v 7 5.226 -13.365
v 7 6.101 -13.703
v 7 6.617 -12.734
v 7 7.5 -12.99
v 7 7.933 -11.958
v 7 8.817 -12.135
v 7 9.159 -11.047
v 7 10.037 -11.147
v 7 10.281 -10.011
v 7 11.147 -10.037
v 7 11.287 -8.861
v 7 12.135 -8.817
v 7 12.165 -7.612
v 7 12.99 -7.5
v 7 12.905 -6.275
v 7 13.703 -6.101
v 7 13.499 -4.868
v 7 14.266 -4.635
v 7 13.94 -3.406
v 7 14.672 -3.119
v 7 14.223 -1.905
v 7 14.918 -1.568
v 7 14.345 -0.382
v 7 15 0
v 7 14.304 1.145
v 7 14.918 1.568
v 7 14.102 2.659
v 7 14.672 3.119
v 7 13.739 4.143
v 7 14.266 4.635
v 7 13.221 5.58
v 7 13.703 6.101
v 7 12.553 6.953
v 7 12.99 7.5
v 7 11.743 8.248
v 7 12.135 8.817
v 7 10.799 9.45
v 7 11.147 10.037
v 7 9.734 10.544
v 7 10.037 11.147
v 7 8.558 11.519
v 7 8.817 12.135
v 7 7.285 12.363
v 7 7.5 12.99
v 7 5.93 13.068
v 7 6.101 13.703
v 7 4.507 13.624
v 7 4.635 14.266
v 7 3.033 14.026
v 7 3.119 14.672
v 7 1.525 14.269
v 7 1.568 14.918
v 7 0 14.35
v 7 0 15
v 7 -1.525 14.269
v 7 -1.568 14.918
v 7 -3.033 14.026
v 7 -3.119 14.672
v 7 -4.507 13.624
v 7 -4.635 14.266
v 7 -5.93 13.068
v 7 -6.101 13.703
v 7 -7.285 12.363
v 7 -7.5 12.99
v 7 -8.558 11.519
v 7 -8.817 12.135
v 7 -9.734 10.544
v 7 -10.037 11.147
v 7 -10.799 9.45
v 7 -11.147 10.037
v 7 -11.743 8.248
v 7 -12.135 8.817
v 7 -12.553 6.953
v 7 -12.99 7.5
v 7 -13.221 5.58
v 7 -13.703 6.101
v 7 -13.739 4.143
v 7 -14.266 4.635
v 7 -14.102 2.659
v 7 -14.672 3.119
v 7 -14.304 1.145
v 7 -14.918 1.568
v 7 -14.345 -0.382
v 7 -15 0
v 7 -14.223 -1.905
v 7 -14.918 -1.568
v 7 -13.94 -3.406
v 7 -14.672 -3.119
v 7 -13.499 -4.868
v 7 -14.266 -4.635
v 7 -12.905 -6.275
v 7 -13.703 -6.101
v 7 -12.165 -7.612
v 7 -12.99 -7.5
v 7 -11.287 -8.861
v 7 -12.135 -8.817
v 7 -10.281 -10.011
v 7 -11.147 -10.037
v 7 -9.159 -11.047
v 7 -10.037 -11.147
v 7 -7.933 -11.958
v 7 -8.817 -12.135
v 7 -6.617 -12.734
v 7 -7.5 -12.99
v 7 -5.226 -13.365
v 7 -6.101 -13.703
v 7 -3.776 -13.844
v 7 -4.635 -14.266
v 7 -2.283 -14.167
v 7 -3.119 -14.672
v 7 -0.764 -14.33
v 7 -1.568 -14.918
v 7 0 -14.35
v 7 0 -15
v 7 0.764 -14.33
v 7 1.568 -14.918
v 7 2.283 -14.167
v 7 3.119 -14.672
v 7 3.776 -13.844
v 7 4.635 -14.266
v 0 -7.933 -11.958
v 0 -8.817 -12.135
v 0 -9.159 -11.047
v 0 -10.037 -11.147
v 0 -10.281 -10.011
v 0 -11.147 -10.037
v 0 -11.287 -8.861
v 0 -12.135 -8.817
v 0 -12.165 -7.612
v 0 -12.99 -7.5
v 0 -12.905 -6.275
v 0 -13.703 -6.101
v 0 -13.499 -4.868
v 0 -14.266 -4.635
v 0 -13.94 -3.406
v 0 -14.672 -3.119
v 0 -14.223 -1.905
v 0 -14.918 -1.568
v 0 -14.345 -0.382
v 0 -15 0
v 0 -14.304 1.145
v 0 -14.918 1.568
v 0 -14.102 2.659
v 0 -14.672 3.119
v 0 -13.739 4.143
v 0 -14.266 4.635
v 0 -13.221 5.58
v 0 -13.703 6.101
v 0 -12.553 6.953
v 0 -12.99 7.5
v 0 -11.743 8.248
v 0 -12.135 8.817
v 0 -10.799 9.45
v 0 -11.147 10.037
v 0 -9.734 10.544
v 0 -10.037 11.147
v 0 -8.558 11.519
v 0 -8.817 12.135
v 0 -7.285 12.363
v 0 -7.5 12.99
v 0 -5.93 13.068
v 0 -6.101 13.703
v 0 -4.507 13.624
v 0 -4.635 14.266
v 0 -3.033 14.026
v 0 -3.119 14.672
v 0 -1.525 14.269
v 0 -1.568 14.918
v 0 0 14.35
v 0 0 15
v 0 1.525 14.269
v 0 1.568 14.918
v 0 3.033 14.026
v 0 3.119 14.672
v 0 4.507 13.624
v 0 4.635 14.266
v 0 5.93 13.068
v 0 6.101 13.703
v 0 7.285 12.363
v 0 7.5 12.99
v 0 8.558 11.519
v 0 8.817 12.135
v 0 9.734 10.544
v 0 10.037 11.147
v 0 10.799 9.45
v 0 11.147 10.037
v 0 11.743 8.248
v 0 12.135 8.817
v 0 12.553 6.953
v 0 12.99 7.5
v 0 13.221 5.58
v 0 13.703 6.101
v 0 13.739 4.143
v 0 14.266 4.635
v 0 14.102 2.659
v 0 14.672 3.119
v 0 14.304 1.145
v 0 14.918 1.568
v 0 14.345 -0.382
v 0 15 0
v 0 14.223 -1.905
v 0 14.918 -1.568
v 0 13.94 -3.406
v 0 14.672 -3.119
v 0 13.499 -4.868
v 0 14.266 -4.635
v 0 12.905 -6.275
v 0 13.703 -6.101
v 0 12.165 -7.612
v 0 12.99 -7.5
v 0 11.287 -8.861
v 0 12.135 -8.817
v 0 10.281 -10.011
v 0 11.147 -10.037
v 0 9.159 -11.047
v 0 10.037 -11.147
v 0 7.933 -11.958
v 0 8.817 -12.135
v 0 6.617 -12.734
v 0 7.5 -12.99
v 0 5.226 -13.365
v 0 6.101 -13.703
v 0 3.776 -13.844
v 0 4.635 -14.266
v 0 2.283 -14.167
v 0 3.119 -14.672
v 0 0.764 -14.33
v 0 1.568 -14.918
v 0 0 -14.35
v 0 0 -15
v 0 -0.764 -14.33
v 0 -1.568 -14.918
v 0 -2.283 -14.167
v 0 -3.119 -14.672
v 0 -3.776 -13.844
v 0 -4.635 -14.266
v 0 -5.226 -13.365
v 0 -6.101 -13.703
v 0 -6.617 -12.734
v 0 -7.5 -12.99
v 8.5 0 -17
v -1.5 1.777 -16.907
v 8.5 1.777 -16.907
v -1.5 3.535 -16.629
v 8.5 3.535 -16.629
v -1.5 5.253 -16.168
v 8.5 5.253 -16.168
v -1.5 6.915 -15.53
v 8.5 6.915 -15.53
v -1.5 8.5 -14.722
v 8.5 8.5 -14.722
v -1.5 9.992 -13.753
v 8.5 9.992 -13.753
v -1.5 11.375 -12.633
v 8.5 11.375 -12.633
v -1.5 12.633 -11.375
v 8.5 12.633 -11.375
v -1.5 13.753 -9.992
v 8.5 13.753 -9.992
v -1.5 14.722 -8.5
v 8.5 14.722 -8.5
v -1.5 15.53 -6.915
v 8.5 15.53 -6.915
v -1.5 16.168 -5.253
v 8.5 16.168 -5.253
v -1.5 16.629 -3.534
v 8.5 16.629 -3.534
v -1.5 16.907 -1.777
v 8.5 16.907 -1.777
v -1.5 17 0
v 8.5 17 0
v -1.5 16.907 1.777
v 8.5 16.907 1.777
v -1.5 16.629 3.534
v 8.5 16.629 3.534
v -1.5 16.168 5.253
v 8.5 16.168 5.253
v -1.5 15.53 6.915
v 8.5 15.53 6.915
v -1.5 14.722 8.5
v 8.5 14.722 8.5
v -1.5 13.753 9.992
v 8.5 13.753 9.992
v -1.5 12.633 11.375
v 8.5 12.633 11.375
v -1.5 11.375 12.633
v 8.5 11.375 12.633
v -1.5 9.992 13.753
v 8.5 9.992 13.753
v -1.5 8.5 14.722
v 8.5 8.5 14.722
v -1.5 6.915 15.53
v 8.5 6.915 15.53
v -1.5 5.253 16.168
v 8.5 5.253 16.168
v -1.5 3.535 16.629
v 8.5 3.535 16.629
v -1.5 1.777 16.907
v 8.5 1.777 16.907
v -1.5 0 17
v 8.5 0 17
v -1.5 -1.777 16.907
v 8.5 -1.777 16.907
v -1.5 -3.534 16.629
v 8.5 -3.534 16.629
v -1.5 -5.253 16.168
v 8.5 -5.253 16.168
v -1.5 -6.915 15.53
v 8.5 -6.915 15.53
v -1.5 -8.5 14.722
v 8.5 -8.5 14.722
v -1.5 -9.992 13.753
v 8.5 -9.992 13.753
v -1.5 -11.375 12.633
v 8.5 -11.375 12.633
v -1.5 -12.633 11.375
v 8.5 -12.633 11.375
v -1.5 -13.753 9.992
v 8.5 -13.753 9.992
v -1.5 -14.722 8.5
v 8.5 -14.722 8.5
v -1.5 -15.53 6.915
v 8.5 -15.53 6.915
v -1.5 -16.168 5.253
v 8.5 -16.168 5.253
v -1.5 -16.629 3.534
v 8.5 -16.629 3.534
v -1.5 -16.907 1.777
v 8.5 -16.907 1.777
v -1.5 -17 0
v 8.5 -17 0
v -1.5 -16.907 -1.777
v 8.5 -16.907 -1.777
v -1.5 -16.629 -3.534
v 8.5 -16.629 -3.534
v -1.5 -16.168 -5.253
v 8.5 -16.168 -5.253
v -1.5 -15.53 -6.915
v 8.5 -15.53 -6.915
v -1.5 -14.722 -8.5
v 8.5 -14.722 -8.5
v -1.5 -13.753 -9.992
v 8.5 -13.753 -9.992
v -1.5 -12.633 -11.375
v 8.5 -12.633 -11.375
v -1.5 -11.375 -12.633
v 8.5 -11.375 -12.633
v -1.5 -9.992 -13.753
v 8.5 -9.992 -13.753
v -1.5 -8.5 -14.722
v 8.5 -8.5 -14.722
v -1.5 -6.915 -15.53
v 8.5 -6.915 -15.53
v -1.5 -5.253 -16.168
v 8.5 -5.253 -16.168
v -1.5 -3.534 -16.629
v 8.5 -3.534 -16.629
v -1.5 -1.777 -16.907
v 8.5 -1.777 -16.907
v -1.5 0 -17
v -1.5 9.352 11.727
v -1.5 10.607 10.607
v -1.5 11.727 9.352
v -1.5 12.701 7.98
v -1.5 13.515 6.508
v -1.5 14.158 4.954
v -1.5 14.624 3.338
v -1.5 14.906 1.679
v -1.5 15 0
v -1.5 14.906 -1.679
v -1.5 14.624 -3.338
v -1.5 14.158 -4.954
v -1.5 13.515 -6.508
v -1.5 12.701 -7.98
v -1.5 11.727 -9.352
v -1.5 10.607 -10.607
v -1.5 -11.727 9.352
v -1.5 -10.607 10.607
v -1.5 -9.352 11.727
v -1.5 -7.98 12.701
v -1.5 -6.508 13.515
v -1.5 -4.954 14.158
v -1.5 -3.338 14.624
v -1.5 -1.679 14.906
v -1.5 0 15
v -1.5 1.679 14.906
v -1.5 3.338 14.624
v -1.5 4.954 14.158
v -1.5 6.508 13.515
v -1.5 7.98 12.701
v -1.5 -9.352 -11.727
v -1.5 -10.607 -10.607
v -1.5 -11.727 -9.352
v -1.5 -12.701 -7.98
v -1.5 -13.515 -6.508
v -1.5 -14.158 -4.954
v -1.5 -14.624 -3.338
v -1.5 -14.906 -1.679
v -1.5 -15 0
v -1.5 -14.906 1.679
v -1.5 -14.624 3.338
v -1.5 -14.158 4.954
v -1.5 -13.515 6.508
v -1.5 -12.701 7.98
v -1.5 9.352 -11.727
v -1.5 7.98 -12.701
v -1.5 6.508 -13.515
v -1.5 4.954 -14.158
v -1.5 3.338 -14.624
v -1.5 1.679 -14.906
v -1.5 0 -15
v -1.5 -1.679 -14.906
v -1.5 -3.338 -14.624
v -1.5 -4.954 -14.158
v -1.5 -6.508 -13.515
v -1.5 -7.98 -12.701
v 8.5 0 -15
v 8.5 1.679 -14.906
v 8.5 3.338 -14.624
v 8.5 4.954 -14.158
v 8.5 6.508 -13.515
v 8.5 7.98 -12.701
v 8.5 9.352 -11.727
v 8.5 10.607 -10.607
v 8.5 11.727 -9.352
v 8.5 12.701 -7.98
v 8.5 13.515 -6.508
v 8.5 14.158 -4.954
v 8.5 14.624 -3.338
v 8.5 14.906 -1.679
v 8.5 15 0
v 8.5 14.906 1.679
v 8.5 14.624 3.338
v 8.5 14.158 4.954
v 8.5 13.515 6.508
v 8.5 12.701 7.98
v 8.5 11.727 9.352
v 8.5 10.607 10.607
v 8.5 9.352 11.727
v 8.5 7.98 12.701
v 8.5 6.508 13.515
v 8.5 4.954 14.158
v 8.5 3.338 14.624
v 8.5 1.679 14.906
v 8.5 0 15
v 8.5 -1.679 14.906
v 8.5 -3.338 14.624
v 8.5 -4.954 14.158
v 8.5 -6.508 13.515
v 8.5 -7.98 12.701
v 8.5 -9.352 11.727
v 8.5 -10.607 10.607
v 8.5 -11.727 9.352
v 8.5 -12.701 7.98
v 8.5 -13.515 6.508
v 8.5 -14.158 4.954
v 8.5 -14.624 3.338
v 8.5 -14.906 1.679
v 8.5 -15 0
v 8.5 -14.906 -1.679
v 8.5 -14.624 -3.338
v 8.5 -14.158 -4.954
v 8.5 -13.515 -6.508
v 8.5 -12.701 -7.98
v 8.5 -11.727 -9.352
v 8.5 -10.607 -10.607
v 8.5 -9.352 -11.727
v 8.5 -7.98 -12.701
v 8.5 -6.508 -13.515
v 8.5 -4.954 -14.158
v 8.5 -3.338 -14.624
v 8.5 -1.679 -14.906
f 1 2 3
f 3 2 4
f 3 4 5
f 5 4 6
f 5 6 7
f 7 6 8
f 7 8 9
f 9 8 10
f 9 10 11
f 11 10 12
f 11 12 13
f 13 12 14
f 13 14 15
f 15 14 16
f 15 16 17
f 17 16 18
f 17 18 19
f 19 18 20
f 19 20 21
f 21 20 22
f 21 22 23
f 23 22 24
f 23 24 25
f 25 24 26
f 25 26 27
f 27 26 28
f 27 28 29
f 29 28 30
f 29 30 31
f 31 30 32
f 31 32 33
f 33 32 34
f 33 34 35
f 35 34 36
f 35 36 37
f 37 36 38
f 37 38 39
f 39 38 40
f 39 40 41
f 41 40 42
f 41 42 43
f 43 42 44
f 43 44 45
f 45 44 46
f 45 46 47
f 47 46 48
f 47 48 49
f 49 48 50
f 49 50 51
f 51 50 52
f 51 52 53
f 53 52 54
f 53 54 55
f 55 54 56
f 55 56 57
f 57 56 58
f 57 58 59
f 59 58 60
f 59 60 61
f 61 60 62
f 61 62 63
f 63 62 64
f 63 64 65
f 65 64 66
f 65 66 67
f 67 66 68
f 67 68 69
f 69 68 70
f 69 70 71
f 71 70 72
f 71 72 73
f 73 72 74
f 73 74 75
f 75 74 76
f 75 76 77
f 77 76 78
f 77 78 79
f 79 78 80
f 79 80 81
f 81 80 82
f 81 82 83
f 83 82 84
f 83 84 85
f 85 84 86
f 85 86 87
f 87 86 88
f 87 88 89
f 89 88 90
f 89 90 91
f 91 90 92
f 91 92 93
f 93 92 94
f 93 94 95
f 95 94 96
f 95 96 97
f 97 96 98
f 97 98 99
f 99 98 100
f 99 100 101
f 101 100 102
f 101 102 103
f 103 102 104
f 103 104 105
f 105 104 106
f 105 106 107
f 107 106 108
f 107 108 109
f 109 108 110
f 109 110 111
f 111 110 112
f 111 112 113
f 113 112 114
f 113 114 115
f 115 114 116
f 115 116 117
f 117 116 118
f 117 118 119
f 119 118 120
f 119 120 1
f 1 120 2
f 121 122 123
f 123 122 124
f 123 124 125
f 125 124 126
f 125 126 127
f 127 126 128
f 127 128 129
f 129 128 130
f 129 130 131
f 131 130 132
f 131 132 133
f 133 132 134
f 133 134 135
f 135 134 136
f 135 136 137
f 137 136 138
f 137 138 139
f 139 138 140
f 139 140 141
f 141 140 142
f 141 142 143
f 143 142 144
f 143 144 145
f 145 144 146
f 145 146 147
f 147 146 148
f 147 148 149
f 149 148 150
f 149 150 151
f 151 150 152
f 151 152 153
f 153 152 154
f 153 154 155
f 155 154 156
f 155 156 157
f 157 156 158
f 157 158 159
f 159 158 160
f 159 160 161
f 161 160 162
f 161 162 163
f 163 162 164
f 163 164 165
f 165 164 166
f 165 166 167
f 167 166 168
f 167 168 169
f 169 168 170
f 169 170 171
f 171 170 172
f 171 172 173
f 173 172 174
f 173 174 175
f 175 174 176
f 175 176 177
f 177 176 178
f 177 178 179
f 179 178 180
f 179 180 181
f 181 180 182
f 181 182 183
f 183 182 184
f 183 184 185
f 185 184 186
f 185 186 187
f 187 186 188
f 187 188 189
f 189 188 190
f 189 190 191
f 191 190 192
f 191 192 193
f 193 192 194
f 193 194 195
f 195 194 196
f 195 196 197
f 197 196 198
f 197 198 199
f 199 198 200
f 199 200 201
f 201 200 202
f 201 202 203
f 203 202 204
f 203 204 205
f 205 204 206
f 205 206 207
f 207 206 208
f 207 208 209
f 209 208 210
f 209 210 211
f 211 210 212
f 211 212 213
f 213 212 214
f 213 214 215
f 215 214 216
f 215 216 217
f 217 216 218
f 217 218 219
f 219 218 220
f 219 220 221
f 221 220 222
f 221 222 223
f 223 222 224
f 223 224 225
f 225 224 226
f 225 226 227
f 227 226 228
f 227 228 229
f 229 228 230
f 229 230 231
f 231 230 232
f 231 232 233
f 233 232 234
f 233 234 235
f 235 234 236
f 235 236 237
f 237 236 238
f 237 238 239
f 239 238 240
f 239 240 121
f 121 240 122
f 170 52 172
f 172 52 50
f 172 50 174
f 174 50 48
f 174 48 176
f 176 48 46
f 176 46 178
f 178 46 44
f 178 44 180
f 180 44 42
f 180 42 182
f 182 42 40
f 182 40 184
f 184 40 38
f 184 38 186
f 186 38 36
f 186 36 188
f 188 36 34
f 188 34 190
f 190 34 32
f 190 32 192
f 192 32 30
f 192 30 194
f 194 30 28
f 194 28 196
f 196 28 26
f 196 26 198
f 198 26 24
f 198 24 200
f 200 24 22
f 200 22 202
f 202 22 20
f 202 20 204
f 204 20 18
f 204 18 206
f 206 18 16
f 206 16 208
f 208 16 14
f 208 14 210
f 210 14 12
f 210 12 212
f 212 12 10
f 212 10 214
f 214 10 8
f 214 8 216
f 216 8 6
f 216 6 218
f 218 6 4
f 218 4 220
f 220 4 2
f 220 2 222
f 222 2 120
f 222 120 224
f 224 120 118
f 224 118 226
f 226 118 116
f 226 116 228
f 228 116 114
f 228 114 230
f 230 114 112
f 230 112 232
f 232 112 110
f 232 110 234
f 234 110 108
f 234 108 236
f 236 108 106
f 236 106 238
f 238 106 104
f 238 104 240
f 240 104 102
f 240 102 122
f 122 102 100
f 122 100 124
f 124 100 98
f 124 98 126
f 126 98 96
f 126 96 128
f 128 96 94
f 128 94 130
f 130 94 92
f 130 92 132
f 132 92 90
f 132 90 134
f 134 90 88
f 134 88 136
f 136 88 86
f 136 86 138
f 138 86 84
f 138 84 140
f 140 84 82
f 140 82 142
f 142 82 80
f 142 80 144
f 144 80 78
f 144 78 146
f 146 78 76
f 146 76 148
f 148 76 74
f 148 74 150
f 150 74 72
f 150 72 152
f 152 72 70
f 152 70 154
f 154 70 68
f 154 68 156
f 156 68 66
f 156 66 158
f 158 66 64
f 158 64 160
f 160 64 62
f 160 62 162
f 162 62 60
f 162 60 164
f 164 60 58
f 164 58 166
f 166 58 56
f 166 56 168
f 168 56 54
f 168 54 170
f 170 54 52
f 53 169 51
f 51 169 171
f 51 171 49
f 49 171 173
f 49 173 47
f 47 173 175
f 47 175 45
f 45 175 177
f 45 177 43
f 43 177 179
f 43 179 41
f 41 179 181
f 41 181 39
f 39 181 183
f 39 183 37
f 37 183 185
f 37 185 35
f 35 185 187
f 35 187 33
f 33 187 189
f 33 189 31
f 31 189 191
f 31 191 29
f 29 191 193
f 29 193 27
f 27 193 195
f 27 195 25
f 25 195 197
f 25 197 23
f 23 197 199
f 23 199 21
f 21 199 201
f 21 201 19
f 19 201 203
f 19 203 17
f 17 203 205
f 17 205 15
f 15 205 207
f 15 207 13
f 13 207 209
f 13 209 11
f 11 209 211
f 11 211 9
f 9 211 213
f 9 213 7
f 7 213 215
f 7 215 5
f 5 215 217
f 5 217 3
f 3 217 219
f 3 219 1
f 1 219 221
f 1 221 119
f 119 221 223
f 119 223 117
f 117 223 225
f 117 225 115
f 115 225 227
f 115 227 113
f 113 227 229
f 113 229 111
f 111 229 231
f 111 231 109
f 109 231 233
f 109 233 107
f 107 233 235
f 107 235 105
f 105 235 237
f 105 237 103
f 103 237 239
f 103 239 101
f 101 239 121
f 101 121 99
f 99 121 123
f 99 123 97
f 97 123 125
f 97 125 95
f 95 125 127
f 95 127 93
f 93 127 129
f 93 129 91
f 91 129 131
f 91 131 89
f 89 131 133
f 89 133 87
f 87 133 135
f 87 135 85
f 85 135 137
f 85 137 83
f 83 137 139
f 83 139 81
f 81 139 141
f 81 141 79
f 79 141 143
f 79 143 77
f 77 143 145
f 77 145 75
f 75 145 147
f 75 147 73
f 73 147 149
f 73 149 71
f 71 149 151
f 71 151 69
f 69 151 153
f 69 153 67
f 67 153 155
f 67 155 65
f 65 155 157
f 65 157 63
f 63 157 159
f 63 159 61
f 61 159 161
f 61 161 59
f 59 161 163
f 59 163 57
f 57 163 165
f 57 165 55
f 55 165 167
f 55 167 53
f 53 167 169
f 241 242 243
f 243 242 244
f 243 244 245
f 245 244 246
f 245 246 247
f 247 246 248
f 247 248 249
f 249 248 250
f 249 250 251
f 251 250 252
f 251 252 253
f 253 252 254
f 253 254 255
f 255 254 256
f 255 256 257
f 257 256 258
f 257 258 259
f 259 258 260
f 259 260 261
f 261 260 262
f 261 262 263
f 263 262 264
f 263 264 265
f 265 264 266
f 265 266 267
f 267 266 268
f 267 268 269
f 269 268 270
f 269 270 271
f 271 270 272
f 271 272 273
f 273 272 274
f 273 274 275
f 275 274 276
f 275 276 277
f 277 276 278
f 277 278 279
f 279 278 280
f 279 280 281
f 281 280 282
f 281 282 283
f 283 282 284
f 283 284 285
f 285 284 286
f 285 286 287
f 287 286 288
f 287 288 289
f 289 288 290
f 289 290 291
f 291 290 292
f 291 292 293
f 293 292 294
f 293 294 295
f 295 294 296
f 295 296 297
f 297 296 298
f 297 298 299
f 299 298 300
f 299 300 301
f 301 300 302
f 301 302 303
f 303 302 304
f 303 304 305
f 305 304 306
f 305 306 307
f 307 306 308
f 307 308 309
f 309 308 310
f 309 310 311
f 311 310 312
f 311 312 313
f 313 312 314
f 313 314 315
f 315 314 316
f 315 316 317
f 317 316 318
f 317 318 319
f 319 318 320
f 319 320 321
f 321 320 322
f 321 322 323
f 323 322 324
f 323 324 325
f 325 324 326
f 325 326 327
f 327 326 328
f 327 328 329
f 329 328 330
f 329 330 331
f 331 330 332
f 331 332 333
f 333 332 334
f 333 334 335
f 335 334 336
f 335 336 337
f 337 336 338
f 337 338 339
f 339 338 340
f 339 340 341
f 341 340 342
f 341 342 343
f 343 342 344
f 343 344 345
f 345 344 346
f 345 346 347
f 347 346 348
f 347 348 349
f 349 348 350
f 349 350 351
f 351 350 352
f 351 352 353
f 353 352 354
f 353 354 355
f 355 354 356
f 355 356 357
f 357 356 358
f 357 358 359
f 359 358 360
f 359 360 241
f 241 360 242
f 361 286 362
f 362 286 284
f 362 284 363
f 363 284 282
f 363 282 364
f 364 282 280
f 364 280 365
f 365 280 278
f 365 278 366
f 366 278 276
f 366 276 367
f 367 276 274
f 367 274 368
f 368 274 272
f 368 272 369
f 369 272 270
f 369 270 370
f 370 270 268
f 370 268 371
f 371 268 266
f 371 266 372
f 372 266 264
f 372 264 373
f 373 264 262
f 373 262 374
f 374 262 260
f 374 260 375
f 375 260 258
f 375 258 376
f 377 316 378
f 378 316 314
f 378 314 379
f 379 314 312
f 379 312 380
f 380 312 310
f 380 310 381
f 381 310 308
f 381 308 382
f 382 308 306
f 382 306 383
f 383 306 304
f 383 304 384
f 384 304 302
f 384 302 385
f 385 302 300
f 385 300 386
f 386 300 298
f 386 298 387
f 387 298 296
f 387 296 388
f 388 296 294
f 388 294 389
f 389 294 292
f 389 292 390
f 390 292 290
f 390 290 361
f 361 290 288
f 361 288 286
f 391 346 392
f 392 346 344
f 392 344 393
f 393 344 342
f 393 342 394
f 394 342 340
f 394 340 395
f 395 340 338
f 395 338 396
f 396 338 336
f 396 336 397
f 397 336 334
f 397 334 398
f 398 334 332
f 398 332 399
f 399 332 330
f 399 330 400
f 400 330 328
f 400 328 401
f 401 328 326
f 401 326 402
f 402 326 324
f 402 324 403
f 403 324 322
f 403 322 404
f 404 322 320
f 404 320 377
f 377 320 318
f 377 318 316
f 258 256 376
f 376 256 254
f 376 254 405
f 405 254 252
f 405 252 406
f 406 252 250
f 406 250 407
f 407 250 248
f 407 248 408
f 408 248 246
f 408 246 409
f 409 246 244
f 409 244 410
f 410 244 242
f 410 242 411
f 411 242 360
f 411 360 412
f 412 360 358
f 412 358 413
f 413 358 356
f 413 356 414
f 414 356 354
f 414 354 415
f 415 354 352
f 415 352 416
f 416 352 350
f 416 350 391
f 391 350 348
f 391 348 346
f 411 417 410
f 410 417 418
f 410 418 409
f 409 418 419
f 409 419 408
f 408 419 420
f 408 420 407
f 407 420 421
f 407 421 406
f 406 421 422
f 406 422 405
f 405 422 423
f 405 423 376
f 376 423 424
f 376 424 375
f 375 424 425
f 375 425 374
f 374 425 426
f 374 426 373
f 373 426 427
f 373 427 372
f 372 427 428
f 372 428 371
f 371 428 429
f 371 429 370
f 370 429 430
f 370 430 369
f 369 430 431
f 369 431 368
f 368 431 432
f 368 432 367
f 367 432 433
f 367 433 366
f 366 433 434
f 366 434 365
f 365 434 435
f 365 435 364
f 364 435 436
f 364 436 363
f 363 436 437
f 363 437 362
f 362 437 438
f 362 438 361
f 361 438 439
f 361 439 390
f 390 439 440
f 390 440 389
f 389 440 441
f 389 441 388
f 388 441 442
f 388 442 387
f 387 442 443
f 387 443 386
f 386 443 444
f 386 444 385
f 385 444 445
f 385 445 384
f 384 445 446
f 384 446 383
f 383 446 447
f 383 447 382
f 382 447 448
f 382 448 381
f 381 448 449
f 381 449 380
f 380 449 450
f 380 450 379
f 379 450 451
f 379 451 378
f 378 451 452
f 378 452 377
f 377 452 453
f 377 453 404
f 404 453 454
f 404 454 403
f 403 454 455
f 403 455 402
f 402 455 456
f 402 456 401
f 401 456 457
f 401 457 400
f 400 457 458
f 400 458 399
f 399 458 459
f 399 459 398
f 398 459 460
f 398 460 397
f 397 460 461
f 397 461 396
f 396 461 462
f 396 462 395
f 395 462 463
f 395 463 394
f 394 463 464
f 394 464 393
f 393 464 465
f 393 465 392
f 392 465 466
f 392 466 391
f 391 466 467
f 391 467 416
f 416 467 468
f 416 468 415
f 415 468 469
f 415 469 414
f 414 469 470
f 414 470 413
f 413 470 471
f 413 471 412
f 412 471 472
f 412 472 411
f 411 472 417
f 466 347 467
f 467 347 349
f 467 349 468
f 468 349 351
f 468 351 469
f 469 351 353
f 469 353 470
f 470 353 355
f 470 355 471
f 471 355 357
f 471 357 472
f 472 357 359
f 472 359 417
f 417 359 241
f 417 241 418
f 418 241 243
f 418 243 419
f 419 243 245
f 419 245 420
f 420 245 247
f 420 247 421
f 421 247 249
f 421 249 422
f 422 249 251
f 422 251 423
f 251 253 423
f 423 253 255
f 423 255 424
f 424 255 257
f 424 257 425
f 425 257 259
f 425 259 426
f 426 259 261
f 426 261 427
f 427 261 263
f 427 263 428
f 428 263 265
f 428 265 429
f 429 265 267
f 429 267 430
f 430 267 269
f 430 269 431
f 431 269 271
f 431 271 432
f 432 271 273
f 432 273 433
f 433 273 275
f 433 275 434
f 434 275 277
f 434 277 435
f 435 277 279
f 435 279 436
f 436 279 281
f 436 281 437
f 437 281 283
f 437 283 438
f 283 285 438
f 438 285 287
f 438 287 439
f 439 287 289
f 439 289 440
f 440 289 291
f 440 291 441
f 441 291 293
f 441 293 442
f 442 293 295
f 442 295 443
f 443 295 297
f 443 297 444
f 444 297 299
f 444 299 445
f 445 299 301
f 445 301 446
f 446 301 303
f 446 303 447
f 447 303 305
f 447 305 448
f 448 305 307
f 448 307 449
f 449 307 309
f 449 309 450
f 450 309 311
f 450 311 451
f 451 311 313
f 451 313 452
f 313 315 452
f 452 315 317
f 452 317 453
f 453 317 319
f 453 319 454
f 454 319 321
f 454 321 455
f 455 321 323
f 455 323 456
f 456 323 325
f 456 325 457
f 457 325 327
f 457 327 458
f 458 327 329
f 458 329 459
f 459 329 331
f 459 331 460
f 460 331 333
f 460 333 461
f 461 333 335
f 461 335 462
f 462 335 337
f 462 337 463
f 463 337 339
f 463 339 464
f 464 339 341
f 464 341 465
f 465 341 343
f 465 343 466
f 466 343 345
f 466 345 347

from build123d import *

# Parameters (mm, degrees)
SKETCH2_R                = 15
SKETCH2_R_2              = 14.35
BOSS_EXTRUDE1_DEPTH      = 7
BOSS_EXTRUDE2_DEPTH      = 1.5
BOSS_EXTRUDE2_DEPTH_BACK = 8.5
SKETCH3_R                = 17
SKETCH3_R_2              = 15


with BuildPart() as part:
    # Sketch2 → Boss-Extrude1 (new body)
    with BuildSketch(Plane(origin=(0, 0, 0), x_dir=(0, 0, -1), z_dir=(1, 0, 0))):
        Circle(SKETCH2_R)
        Circle(SKETCH2_R_2, mode=Mode.SUBTRACT)
    extrude(amount=BOSS_EXTRUDE1_DEPTH)


with BuildPart() as body_2:
    # Sketch3 → Boss-Extrude2 (new, two sides: drawn at the far end of the back side and taken through both)
    with BuildSketch(Plane(origin=(7, 0, 0), x_dir=(0, 0, -1), z_dir=(1, 0, 0)).offset(-BOSS_EXTRUDE2_DEPTH_BACK)):
        Circle(SKETCH3_R)
        Circle(SKETCH3_R_2, mode=Mode.SUBTRACT)
    extrude(amount=BOSS_EXTRUDE2_DEPTH + BOSS_EXTRUDE2_DEPTH_BACK)


solid = Compound([part.part, body_2.part])
